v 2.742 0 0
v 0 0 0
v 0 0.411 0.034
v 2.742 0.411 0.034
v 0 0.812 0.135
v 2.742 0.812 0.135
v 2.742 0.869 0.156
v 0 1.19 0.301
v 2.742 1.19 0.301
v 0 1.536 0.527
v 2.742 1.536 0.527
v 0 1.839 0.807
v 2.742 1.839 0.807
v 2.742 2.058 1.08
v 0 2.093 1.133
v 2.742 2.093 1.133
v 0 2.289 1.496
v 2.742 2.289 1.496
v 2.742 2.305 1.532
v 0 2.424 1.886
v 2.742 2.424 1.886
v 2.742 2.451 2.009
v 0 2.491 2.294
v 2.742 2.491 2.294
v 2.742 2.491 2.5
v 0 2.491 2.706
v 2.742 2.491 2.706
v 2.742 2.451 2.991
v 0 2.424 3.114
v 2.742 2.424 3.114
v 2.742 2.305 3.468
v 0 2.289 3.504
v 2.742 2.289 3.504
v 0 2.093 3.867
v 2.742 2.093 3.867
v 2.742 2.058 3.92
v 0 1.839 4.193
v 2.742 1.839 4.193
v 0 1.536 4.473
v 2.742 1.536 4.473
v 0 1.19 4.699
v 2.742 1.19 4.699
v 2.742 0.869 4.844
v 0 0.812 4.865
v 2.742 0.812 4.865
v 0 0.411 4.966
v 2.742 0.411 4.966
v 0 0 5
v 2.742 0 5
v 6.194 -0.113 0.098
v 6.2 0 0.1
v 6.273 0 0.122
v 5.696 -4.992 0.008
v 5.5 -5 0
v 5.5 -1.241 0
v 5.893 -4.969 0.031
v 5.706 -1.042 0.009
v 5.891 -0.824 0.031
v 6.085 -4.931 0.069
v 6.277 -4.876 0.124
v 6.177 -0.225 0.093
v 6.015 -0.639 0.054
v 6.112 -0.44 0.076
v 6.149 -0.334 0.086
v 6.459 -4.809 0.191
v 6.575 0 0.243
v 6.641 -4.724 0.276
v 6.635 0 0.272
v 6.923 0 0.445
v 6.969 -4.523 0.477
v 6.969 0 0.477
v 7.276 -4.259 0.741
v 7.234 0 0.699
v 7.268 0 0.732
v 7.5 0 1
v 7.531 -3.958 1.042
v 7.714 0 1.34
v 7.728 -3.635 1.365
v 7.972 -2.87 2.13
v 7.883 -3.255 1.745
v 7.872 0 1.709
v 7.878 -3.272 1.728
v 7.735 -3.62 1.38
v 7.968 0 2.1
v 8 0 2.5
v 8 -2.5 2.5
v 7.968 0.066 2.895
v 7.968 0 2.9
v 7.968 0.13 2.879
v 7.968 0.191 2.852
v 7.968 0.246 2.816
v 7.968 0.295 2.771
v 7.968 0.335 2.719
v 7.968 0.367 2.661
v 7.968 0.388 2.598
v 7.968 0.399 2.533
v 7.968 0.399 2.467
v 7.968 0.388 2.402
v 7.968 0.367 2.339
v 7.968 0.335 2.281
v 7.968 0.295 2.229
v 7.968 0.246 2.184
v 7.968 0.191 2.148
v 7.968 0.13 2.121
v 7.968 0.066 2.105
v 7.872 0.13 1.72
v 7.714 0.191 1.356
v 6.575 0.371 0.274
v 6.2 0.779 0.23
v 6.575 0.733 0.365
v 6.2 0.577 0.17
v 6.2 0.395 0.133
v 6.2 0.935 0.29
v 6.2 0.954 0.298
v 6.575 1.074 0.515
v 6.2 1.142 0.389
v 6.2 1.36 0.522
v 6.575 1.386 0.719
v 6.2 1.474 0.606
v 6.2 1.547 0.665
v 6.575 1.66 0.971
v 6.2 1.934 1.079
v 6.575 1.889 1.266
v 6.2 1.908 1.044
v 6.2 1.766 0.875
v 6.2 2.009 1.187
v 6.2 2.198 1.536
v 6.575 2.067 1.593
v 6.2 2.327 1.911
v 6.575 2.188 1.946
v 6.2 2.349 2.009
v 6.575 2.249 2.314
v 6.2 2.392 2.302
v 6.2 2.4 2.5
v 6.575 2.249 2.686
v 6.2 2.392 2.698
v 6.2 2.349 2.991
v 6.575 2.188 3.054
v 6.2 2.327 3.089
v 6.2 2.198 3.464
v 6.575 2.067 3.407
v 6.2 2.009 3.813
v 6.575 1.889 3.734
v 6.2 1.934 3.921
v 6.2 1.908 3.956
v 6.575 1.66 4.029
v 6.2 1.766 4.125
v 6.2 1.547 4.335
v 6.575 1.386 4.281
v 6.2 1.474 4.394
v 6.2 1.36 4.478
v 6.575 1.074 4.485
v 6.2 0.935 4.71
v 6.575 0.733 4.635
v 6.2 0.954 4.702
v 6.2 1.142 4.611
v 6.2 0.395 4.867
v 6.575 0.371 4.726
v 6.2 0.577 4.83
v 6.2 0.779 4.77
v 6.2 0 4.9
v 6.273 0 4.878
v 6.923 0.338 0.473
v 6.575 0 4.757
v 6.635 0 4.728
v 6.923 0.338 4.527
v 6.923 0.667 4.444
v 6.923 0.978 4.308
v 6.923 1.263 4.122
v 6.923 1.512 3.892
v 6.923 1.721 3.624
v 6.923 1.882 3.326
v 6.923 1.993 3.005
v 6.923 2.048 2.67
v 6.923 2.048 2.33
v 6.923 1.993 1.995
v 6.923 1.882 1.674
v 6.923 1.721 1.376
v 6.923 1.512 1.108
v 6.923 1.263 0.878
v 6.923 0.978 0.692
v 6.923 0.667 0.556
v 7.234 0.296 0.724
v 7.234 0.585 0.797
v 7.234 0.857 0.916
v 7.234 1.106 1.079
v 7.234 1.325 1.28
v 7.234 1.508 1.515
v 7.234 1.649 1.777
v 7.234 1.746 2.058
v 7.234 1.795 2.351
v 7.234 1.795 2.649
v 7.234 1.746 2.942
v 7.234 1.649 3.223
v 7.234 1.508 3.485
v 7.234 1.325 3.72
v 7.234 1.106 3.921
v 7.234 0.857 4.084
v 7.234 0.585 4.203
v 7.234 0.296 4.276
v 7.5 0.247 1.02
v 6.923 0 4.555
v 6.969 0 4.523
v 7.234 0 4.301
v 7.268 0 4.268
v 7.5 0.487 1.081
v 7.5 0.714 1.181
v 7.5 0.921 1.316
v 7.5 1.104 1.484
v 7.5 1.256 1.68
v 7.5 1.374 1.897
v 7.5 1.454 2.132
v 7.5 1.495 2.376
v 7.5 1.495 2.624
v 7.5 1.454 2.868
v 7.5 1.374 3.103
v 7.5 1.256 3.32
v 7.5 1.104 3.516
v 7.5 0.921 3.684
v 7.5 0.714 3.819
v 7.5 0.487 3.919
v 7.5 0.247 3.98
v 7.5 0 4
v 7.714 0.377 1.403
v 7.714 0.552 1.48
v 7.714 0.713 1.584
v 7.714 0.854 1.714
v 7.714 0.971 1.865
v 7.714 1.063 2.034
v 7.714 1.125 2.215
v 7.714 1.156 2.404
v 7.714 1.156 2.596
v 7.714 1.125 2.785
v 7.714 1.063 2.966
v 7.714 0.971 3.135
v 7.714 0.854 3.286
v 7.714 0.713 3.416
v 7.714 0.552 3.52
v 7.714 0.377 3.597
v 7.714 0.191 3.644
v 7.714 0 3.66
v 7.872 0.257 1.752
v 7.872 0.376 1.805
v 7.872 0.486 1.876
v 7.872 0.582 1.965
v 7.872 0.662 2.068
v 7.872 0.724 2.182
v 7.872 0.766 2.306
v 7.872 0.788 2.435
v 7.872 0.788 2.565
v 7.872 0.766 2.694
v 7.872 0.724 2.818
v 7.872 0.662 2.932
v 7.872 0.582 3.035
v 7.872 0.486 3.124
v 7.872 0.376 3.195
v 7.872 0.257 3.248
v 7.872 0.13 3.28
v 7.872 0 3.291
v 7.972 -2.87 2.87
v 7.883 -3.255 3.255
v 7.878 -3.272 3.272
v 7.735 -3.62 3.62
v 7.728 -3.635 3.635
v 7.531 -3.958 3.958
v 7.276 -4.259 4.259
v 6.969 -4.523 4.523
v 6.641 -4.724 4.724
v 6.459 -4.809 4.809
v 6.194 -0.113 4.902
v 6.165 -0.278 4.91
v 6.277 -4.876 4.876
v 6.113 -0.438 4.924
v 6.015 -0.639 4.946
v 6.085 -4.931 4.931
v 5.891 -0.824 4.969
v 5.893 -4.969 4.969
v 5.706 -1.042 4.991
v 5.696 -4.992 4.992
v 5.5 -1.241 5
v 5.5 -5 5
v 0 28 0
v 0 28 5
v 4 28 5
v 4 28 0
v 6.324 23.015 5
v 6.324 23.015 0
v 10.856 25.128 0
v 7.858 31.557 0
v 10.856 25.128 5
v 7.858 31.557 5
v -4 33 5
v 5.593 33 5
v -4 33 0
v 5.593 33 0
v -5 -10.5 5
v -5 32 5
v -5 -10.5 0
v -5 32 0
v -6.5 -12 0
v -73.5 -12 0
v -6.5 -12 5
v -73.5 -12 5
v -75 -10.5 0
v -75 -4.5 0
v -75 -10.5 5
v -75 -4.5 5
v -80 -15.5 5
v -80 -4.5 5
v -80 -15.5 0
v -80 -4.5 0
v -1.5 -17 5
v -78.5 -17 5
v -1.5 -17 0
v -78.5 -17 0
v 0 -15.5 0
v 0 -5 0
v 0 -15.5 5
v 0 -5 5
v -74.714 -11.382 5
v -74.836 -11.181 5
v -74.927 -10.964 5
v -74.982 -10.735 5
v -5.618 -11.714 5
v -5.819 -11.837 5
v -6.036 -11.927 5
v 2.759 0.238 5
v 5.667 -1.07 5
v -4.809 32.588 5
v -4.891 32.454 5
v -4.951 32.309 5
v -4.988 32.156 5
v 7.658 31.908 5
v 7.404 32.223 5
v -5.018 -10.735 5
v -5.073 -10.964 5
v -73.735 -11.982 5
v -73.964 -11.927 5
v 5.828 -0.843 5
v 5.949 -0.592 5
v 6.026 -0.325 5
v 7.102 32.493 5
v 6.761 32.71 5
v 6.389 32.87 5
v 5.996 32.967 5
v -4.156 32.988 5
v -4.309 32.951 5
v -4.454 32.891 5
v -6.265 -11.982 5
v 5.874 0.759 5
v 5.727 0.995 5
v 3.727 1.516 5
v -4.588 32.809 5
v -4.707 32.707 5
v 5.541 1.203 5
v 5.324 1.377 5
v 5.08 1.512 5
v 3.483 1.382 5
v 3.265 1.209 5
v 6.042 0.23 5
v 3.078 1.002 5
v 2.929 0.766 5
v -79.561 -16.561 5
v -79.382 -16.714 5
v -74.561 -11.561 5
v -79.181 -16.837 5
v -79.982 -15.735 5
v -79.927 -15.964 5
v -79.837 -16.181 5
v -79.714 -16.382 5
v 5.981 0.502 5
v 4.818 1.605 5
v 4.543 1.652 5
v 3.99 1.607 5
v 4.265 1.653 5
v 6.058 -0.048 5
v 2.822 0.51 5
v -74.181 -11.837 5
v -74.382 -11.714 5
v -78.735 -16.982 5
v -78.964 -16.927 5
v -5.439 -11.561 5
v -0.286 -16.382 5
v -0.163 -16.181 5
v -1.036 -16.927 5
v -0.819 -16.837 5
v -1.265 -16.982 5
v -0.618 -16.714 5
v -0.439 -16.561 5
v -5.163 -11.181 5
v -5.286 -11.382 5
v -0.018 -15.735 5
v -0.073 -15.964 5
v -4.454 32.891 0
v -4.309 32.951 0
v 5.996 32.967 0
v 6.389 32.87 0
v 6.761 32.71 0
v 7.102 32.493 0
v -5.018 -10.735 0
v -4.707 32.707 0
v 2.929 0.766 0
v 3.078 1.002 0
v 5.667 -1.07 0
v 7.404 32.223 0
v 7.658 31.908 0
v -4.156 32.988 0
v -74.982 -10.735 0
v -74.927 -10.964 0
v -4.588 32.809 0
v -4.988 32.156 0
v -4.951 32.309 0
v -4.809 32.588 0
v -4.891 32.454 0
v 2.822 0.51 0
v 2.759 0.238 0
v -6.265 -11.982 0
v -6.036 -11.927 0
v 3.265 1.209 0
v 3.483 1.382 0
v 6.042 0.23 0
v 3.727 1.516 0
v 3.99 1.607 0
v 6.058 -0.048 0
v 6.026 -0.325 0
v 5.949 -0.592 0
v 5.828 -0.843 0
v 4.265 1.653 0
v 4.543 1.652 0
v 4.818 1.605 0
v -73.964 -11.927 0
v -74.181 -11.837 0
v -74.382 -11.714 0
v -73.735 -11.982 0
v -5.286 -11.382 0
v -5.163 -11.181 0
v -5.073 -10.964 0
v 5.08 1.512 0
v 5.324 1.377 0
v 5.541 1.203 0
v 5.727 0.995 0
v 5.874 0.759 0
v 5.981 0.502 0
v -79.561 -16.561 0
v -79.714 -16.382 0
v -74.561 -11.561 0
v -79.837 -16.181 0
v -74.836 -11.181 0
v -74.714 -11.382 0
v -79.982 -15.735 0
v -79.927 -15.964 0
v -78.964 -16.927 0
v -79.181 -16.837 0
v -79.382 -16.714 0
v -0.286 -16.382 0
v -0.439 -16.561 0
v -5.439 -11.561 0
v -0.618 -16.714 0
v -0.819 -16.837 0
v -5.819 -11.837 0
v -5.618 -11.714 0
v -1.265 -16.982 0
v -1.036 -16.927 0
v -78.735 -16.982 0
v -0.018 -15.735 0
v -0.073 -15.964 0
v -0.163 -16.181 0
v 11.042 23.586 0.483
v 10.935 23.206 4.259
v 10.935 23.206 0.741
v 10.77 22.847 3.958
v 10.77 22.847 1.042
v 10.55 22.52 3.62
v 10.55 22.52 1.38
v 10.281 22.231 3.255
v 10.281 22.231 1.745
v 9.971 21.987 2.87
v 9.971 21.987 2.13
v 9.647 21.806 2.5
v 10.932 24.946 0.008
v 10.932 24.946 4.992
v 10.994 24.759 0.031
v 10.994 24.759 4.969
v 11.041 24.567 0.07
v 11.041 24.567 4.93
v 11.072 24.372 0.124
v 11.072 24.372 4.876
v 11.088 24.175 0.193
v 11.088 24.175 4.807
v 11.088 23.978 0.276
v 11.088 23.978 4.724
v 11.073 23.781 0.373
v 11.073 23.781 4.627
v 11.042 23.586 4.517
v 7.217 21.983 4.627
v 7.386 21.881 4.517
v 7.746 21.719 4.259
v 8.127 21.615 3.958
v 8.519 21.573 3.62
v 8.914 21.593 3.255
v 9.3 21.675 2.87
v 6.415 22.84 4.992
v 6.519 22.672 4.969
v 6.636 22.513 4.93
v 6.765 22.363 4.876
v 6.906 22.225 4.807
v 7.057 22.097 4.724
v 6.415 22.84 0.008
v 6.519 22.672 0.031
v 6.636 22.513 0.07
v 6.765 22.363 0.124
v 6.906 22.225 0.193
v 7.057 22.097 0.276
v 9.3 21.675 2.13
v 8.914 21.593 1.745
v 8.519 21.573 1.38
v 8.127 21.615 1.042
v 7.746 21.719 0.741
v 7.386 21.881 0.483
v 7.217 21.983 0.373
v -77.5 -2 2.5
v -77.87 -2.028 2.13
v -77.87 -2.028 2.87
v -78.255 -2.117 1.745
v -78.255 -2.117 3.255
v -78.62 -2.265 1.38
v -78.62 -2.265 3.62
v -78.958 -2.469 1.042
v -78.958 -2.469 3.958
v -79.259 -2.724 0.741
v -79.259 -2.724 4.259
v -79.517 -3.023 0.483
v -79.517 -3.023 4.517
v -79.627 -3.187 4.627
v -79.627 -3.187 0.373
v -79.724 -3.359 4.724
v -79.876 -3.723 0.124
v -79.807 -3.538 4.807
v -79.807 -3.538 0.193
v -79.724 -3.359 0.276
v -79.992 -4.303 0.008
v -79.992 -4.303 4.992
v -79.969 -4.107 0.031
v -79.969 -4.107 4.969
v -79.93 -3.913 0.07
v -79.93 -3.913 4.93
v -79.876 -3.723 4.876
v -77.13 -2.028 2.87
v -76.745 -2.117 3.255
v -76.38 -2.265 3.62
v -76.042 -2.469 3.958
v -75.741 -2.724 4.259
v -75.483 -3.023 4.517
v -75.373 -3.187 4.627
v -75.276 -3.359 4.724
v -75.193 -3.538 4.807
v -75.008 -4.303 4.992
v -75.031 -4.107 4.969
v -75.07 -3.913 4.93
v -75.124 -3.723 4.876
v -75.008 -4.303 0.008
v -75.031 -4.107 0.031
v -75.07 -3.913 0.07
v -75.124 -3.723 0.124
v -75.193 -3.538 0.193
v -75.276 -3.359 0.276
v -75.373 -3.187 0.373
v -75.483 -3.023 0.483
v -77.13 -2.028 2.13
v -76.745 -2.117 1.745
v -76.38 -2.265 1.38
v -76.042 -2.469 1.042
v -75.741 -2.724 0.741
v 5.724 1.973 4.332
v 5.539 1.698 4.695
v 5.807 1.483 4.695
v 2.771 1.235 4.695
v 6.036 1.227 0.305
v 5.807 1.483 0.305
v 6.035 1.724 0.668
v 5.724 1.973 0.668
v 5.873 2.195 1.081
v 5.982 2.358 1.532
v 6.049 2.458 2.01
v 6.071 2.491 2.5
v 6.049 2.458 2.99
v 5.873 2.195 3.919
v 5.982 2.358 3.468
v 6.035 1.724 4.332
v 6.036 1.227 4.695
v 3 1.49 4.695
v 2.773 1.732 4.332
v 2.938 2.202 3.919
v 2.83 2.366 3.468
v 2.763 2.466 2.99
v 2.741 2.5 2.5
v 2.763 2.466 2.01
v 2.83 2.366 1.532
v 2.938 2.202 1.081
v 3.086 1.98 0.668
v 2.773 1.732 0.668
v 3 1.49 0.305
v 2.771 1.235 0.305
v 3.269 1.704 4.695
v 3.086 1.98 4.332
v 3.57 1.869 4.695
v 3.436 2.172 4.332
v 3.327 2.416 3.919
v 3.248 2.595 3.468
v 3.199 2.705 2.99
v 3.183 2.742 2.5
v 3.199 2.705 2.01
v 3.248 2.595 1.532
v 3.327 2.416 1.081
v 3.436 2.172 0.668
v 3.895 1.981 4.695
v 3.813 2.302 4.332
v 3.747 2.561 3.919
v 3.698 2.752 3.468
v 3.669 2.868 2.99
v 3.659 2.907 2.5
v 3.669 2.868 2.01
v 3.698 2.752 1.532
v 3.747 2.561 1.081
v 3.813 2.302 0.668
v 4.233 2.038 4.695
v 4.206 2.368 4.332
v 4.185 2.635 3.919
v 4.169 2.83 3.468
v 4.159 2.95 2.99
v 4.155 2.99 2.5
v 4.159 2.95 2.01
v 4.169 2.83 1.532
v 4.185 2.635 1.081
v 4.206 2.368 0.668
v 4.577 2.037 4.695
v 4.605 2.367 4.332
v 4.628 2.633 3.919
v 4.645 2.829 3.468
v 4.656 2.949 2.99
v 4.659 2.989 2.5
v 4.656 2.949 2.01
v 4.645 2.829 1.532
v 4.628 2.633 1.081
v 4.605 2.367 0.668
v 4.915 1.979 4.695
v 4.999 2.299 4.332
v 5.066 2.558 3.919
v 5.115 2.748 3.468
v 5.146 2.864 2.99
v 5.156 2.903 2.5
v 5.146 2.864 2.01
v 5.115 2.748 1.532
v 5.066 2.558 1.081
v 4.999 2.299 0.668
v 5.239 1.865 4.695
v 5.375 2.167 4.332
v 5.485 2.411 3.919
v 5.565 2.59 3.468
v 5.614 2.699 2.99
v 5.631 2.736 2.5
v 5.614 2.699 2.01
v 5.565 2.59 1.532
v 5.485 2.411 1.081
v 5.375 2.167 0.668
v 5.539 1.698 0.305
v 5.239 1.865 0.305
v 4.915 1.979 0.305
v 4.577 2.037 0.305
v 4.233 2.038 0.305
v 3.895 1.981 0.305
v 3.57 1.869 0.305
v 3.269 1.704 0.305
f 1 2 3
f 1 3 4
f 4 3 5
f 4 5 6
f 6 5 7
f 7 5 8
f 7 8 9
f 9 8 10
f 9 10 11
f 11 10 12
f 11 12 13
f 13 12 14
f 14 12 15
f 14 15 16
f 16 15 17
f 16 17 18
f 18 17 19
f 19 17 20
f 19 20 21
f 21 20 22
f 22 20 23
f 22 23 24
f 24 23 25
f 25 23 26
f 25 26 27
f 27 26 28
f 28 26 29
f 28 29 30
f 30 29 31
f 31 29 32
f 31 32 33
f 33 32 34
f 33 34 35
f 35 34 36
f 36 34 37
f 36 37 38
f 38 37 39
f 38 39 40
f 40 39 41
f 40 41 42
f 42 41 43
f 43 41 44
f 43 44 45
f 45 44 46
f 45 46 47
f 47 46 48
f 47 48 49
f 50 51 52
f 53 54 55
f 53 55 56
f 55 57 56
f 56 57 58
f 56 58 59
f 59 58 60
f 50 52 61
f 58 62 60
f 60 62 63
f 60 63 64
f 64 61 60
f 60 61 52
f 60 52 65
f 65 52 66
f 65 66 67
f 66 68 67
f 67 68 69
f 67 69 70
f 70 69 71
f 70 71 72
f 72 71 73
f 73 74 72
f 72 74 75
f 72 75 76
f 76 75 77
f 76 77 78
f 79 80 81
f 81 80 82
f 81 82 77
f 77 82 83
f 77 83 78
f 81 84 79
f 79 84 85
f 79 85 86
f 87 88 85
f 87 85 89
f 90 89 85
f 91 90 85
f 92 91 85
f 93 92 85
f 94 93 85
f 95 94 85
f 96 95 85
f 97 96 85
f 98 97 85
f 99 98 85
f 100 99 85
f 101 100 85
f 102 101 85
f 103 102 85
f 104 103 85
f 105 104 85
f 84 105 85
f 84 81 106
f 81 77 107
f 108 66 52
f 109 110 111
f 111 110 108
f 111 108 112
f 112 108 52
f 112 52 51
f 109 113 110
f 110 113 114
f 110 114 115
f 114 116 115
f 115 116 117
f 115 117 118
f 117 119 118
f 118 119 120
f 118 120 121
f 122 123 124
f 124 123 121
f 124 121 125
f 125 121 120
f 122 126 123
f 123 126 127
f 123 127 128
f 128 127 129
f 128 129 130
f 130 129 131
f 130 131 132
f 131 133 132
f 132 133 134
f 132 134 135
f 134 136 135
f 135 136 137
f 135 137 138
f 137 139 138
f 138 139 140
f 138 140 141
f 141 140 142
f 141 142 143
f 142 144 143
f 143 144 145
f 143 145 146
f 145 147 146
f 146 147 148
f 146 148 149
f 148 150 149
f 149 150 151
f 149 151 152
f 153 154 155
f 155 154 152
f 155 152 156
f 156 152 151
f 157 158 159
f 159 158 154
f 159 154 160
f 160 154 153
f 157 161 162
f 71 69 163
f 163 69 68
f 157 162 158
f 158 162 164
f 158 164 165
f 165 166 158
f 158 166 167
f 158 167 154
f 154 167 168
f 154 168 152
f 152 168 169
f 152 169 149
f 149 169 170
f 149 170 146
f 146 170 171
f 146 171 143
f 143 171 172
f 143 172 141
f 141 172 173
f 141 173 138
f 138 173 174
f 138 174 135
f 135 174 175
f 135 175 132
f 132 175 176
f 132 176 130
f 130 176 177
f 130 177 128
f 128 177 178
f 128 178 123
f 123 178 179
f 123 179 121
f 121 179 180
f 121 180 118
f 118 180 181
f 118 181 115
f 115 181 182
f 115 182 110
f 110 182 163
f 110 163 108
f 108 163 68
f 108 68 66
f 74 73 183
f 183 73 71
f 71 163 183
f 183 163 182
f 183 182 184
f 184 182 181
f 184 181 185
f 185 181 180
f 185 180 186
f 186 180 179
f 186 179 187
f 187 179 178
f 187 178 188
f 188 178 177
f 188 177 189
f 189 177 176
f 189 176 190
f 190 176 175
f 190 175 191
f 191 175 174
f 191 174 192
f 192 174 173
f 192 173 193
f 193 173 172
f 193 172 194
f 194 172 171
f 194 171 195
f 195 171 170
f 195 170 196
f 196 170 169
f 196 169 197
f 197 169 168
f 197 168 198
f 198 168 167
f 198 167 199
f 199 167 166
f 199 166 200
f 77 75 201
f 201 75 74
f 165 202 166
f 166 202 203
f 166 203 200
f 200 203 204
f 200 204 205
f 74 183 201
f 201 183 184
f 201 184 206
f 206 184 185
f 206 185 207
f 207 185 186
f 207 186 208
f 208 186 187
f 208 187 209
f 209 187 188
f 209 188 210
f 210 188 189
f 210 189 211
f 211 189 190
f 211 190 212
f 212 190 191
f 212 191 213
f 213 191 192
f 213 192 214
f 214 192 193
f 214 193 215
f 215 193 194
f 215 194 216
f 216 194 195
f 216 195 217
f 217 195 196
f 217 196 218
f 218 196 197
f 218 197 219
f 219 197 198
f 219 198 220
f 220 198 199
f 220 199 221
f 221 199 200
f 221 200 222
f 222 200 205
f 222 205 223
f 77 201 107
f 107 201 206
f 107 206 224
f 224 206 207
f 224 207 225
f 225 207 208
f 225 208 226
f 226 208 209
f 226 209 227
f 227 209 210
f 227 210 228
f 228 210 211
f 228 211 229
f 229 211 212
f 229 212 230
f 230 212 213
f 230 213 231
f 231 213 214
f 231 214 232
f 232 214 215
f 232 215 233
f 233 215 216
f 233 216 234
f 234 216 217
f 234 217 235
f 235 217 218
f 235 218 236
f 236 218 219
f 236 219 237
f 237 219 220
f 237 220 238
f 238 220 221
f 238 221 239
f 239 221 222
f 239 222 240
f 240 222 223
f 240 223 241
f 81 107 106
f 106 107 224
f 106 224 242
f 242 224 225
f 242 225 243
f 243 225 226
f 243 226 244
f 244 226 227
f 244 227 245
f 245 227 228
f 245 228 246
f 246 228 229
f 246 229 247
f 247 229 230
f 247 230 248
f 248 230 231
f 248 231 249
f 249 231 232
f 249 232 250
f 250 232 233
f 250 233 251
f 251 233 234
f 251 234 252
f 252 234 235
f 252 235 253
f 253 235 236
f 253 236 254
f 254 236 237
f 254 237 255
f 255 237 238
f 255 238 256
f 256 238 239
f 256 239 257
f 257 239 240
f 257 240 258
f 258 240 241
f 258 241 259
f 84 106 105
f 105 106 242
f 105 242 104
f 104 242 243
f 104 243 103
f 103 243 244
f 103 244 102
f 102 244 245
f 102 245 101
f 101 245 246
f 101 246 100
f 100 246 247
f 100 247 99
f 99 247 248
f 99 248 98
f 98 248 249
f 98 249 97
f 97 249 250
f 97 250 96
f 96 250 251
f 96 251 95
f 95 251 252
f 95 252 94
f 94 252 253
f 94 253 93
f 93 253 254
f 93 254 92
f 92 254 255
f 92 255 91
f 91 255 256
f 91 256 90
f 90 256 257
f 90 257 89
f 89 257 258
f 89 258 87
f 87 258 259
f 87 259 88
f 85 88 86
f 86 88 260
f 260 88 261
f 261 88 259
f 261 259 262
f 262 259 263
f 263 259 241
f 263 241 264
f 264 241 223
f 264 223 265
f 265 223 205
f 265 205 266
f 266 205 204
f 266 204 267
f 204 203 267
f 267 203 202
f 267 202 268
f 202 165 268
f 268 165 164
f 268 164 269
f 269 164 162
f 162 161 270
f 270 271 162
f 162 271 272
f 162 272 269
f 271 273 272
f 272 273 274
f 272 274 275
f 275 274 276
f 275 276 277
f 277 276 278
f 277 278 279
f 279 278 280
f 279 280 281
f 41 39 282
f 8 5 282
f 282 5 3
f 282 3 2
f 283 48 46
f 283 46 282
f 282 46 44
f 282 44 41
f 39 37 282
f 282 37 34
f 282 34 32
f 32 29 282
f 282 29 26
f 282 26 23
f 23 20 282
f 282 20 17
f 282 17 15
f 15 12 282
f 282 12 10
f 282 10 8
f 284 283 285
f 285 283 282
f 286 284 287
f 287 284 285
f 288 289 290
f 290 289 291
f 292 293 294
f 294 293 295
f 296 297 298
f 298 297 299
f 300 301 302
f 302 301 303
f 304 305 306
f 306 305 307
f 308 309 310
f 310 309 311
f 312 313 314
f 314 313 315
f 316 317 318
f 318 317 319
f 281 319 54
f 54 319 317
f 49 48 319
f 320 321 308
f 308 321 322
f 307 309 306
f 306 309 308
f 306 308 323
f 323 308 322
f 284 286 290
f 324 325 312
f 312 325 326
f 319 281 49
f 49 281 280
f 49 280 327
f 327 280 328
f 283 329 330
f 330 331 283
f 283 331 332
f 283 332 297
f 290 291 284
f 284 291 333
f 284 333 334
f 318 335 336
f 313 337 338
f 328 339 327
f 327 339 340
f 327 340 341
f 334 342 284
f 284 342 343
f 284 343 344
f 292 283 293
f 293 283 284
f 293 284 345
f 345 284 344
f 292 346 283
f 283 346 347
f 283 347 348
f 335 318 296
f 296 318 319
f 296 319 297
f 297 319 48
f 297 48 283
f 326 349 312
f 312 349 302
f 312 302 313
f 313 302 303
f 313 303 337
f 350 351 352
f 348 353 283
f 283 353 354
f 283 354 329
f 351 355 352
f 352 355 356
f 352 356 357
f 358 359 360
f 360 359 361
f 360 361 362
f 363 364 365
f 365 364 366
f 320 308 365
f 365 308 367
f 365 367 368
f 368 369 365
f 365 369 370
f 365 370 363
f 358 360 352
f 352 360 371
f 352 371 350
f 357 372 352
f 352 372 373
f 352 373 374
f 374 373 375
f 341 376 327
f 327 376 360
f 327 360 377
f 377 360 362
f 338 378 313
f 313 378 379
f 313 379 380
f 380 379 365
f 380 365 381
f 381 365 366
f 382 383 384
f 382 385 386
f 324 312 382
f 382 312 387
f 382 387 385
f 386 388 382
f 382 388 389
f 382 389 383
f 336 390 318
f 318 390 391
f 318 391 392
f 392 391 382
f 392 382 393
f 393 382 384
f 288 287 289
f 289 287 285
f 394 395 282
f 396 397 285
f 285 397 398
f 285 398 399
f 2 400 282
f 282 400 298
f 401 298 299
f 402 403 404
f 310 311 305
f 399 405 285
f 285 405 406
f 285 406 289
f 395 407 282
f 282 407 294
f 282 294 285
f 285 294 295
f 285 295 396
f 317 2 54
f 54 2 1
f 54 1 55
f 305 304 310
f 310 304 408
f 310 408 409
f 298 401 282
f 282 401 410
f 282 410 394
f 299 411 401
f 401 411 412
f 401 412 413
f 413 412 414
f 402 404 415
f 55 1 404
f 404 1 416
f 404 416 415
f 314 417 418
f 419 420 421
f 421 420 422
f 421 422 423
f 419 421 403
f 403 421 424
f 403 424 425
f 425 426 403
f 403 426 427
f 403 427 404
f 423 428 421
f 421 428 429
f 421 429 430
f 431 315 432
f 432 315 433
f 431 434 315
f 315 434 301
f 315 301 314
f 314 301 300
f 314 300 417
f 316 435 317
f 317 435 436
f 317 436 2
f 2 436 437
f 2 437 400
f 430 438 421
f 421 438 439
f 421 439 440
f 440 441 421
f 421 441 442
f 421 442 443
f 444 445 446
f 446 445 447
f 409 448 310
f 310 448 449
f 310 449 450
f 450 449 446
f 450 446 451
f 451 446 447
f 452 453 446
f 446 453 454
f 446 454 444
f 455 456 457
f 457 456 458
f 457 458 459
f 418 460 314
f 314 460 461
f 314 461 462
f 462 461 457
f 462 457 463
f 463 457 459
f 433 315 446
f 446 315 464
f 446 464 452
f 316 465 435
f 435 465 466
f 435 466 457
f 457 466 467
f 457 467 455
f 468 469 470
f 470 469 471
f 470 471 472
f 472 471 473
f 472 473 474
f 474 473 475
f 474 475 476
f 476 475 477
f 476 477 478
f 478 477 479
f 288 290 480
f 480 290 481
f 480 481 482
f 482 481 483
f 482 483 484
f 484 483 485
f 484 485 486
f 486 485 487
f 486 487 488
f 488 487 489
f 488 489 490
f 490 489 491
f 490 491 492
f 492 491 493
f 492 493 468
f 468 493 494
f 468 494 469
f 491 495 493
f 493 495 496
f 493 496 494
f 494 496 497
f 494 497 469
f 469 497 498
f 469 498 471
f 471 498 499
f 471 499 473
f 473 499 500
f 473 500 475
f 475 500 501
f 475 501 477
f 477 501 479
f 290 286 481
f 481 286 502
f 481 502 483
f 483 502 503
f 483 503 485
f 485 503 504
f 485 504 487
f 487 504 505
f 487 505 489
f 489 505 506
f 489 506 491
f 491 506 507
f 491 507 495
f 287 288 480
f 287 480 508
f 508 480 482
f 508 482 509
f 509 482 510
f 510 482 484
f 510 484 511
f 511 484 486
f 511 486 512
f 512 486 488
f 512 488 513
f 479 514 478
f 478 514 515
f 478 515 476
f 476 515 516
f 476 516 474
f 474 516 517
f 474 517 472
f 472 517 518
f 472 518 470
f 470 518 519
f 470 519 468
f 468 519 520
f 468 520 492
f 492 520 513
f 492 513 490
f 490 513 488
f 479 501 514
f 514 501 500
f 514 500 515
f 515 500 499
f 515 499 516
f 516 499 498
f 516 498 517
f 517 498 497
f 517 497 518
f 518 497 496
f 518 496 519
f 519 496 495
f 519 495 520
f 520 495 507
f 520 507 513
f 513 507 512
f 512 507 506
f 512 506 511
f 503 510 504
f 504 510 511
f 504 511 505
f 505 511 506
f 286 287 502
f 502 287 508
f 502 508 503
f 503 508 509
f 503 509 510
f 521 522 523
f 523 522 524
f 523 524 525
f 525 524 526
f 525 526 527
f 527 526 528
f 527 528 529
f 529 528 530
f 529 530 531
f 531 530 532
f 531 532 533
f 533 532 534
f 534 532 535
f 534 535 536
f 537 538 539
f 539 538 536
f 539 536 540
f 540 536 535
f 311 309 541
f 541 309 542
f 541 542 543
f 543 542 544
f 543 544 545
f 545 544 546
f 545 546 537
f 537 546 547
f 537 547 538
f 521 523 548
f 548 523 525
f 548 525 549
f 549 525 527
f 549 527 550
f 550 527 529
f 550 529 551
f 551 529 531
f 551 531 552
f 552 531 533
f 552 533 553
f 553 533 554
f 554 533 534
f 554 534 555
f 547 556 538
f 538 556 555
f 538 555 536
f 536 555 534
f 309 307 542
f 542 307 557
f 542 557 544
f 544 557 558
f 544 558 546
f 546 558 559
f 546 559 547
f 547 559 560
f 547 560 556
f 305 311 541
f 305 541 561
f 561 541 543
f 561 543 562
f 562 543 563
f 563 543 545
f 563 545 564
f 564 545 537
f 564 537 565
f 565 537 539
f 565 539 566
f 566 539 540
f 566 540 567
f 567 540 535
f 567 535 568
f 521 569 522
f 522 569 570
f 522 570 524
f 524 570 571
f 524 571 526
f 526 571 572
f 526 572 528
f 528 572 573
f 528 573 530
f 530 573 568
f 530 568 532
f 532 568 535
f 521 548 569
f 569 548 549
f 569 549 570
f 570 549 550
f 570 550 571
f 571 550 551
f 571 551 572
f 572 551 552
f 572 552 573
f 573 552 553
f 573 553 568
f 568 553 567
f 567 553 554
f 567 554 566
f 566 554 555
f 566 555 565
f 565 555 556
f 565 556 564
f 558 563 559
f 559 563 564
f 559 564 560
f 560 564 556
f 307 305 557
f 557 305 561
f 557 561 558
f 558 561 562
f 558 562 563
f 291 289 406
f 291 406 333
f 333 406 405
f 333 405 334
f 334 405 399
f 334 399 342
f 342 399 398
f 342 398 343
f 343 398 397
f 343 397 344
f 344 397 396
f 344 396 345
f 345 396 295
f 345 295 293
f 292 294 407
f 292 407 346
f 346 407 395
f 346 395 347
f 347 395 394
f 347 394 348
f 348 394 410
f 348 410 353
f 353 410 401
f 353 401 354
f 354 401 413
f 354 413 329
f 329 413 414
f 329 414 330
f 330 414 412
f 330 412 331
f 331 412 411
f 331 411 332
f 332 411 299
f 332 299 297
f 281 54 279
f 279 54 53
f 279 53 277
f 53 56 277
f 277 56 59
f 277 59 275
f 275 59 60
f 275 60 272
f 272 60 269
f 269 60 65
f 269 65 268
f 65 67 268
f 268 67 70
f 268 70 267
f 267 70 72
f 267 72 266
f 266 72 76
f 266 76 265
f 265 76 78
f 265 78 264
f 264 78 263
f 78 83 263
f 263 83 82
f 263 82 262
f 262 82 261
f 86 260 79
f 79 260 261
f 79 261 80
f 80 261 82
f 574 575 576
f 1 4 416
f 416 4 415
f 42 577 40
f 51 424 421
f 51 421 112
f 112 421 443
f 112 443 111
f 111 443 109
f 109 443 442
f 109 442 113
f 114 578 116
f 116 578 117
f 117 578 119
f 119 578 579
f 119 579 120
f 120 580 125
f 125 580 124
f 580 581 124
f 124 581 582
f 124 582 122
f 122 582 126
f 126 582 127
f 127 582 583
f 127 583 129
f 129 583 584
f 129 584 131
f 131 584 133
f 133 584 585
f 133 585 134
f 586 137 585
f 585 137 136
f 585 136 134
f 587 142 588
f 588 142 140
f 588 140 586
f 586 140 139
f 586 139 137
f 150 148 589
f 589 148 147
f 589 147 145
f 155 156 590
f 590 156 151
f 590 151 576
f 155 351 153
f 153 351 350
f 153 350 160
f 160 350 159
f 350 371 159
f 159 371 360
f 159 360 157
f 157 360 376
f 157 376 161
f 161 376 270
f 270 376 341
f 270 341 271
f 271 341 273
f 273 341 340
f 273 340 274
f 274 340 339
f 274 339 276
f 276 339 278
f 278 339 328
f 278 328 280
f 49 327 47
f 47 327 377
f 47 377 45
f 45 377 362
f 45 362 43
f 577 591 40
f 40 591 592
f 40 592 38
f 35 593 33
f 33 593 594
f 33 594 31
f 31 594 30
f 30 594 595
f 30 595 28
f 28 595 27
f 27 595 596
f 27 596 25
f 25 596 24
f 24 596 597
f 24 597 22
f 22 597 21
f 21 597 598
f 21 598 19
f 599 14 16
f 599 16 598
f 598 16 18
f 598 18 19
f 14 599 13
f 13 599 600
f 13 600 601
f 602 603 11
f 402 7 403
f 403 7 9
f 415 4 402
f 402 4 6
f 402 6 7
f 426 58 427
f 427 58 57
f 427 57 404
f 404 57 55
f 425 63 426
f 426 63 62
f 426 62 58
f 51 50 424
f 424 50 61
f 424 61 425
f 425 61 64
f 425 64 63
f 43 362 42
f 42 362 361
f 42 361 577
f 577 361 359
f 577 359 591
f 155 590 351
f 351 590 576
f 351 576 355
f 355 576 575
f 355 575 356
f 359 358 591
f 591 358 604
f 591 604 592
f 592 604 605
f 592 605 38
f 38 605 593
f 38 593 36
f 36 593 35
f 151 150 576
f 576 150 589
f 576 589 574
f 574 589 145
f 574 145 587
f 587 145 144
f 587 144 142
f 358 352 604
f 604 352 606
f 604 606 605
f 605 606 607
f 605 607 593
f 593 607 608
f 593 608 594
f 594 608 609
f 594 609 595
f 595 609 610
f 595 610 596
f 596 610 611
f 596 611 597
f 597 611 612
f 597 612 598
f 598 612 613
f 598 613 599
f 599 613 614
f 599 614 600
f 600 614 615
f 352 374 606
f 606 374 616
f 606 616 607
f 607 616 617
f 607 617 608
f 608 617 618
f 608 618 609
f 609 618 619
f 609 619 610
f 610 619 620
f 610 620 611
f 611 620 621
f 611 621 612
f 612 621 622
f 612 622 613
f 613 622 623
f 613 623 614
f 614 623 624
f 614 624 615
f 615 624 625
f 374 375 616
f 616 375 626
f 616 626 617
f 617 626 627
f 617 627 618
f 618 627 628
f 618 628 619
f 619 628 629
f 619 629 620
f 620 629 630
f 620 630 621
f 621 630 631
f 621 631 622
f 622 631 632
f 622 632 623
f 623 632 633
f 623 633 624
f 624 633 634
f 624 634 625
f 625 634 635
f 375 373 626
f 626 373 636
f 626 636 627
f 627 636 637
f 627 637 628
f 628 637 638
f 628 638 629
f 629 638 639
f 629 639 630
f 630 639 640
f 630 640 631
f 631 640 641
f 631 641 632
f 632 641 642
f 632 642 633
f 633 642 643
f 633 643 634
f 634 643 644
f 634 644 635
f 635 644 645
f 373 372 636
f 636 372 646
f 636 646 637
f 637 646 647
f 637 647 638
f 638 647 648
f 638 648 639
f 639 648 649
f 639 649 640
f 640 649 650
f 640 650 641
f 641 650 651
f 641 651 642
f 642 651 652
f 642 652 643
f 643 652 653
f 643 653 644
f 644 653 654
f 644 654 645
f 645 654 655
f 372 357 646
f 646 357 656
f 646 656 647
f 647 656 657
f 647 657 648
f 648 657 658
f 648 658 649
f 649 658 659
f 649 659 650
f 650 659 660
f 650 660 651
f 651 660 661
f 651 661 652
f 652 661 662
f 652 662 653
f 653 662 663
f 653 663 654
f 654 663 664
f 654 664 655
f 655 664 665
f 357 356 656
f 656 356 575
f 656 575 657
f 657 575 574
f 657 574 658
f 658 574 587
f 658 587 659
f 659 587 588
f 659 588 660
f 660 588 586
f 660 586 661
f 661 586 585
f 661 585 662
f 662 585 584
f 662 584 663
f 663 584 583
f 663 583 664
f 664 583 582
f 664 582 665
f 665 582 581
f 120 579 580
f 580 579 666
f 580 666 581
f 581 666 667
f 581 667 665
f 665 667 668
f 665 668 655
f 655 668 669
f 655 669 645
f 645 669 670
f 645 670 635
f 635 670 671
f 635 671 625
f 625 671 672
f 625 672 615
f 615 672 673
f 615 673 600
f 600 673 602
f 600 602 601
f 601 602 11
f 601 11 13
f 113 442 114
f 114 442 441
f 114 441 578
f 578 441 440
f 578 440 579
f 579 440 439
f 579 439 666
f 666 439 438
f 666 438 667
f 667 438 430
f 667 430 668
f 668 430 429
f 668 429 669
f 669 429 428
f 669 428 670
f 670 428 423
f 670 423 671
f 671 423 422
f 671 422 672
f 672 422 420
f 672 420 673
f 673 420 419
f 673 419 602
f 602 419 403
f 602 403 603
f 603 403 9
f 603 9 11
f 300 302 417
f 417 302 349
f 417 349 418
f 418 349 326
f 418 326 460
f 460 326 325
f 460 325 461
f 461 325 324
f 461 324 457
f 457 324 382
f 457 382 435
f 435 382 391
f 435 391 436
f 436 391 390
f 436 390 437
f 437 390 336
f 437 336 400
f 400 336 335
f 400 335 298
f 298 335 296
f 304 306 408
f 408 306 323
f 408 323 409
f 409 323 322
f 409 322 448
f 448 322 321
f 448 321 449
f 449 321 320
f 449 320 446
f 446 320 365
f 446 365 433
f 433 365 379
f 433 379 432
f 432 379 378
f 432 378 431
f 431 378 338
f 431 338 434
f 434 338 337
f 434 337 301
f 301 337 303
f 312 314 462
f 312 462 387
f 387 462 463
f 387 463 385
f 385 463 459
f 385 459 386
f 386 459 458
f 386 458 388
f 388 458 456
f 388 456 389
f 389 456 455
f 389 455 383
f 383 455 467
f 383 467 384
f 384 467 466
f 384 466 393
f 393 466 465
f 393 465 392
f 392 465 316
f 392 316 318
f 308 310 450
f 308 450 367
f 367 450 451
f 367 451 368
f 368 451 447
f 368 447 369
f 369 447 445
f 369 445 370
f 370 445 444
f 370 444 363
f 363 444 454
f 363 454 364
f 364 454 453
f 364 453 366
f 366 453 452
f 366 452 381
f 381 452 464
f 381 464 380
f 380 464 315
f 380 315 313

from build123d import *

# Parameters (mm, degrees)
EXTRUDE_1_DEPTH     = 5
FILLET_1_R          = 2.5
FILLET_2_R          = 1
EXTRUDE_2_DEPTH     = 8
FILLET_3_R          = 2.5
SKETCH_5_W          = 1.467751534
SKETCH_5_H          = 4.178210798
SKETCH_5_W_2        = 1.389566385
CUT_EXTRUDE_1_DEPTH = 20
FILLET_4_R          = 1.5
FILLET_5_R          = 1.5


with BuildPart() as part:
    # 草图1 → 凸台-拉伸1 (new body)
    with BuildSketch(Plane.XY):
        Polygon((0, 0), (0, 28), (4, 28), (7.380946094, 20.749537704), (11.912485029, 22.862629012), (7.185351304, 33), (-5, 33), (-5, -12), (-75, -12), (-75, -2), (-80, -2), (-80, -17), (0, -17), (0, -5), (8, -5), (8, 0), align=None)
    extrude(amount=EXTRUDE_1_DEPTH)

    # 圆角1
    fillet_1_edges = [part.edges().sort_by_distance(p)[0] for p in [
        (-77.5, -2, 0),
        (9.646715562, 21.806083358, 0),
        (9.646715562, 21.806083358, 5),
        (-80, -2, 2.5),
        (-75, -2, 2.5),
        (7.185351304, 33, 2.5),
        (11.912485029, 22.862629012, 2.5),
        (7.380946094, 20.749537704, 2.5),
        (-77.5, -2, 5),
    ]]
    fillet(fillet_1_edges, radius=FILLET_1_R - 0.0001)  # a hair under: the kernel refuses the full size

    # 圆角2
    fillet_2_edges = [part.edges().sort_by_distance(p)[0] for p in [
        (-5, 33, 2.5),
    ]]
    fillet(fillet_2_edges, radius=FILLET_2_R)

    # 草图3 → 凸台-拉伸2 (add)
    with BuildSketch(Plane(origin=(0, 0, 0), x_dir=(0, 0, -1), z_dir=(1, 0, 0))):
        with BuildLine():
            Line((-5, 0), (0, 0))
            ThreePointArc((0, 0), (-2.5, 2.5), (-5, 0))
        make_face()
    extrude(amount=EXTRUDE_2_DEPTH)

    # 圆角3
    fillet_3_edges = [part.edges().sort_by_distance(p)[0] for p in [
        (8, -2.5, 0),
        (8, -5, 2.5),
        (8, -2.5, 5),
        (8, 2.5, 2.5),
    ]]
    fillet(fillet_3_edges, radius=FILLET_3_R - 0.0001)  # a hair under: the kernel refuses the full size

    # 草图4 → 旋转3 (revolve)
    with BuildSketch(Plane(origin=(4.4, 0, 0), x_dir=(0, 0, -1), z_dir=(1, 0, 0))):
        with BuildLine():
            Line((-5.5, 0), (0.5, 0))
            ThreePointArc((0.5, 0), (-2.5, 3), (-5.5, 0))
        make_face()
    revolve(axis=Axis((4.4, 0, 2.5), (0, 0, -1)))

    # 草图5 → 切除-拉伸1 (cut)
    with BuildSketch(Plane.ZY.offset(5)):
        with Locations((-0.733875767, -0.010051234)):
            Rectangle(SKETCH_5_W, SKETCH_5_H)
        with Locations((5.694783193, -0.010051234)):
            Rectangle(SKETCH_5_W_2, SKETCH_5_H)
    extrude(amount=-CUT_EXTRUDE_1_DEPTH, mode=Mode.SUBTRACT)

    # 圆角4
    fillet_4_edges = [part.edges().sort_by_distance(p)[0] for p in [
        (-75, -12, 2.5),
        (-5, -12, 2.5),
    ]]
    fillet(fillet_4_edges, radius=FILLET_4_R)

    # 圆角5
    fillet_5_edges = [part.edges().sort_by_distance(p)[0] for p in [
        (0, -17, 2.5),
        (-80, -17, 2.5),
    ]]
    fillet(fillet_5_edges, radius=FILLET_5_R)


solid = part.part
